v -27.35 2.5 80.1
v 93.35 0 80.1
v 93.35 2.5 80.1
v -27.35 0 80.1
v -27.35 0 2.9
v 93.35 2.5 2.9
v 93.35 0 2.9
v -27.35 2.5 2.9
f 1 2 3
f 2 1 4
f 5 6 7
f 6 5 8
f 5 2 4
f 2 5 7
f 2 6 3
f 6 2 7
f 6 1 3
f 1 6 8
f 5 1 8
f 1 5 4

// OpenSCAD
// file: D:/Projects/assembly-workshop/outputs/Screen_Pi_Hue_SCR5-H8_2026-10-31/checks/geometry.scad
// SCR5-G; mm; FRONT view: X right, Z up, Y into rack. Glass/plate front Y=0.
// Measured values: work/screen-5in/Dimensions.md. Physical fit/strength UNKNOWN.
part="plate";
DROP=0.45; // coupon winner can be substituted here; all three pins use this DROP
LIP=0.8; LIP_ON=true;
LIP_EDGES=[true,true,false,false]; // left,right,bottom,top; Brian: side lips only, cosmetic
FRAME_STEP=1.5; // measured glass-edge inset to metal LCD frame, left/right only
SHIM=0; // moves rear frame seat and plate-boss mating face back
$fn=48;
GCX=33; GCZ=41.5; PW=252; PH=88.8; PT=4;
GW=120.7; GH=77.2; CLEAR=0.2; WW=GW+2*CLEAR; WH=GH+2*CLEAR;
SEAT=13.3+SHIM; FT=3;
SO=[56.45,34]; BTN_X=[45.5,35.5,25.5];
PCB_TOP=38; GAP=0.10; LEAF_T=0.8;
HOLE=[3.4,40.3,44.7];
BX=[GCX-68,GCX+68]; BZ=[10,72];
// DSI connector X extent is unmeasured: conservative assumed 8 mm inward from PCB edge.
DSI=[GCX-60.5,9.1,GCZ-38+30,8,5.25,21];
module xz(y,d){translate([0,y+d,0])rotate([90,0,0])linear_extrude(d)children();}
// rr/rack_slots copied from SCR5-F; same exact slot centres, outline shifted -0.05 Z to centre 44.4.
module rr(w,h,r){hull()for(x=[-w/2+r,w/2-r],z=[-h/2+r,h/2-r])translate([x,z])circle(r=r);}
module rack_slots(){for(x=[-118.2625,118.2625],z=[6.323,38.127,50.773,82.577])translate([x,z])hull()for(dx=[-1.5,1.5])translate([dx,0])circle(d=7);}
module cyl_y(x,y,z,d,h){translate([x,y,z])rotate([-90,0,0])cylinder(d=d,h=h);}
module window_cut(){
  xz(-0.02,4.04)translate([GCX,GCZ])square([WW,WH],center=true);
  // 0.3 x 45-degree chamfer, square corners, front only.
  translate([GCX,0.3,GCZ])rotate([90,0,0])
    linear_extrude(height=0.3,scale=[(WW+0.6)/WW,(WH+0.6)/WH])square([WW,WH],center=true);
}
module lips(){
  // Cosmetic side ledges only; rear frame/standoffs set depth and retain the screen.
  if(LIP_ON)for(i=[0:3])if(LIP_EDGES[i]){
    if(i<2)translate([GCX+(i==0?-WW/2:WW/2-LIP),2.5,GCZ-GH/2+4])cube([LIP,0.8,GH-8]);
    else translate([GCX-GW/2+4,2.5,GCZ+(i==2?-WH/2:WH/2-LIP)])cube([GW-8,0.8,LIP]);
  }
}
// Leaf/nub/bump geometry copied from SCR5-WP-A, translated to this glass centre.
module leaves(){for(x=BTN_X)translate([GCX+x-1.5,0,GCZ]){
  translate([0,0,PCB_TOP+GAP+0.9+0.1])cube([3,11.8,LEAF_T]);
  translate([0,10.2,PCB_TOP+GAP])cube([3,1.4,1.0+LEAF_T/2]);
  translate([0,10.4,PCB_TOP+GAP+1.0+LEAF_T])cube([3,1.0,0.9]);
}}
module plate(){difference(){union(){
  difference(){xz(0,PT)translate([0,PH/2])rr(PW,PH,2.5);window_cut();}
  for(x=BX,z=BZ)cyl_y(x,3.9,z,8,SEAT-3.9);
  leaves(); lips();
 }
 xz(-0.02,4.04)rack_slots();
 for(x=BTN_X)translate([GCX+x-HOLE[0]/2,-0.02,GCZ+HOLE[1]])cube([HOLE[0],SEAT+FT+0.04,HOLE[2]-HOLE[1]]);
 // Printed-in screw pilots (no heat-set OD assumption): nominal M2.5, fit UNKNOWN.
 for(x=BX,z=BZ)cyl_y(x,SEAT-6,z,2.1,6.02);
 // Rear engraving, 0.5 deep, left field.
 xz(3.5,0.52)translate([-75,40])mirror([1,0])text("SCR5-G",size=6,halign="center",font="Liberation Sans:style=Bold");
}}
module frame_blank(){
  // C-shaped perimeter; no material across the board centre / touch FPC.
  xz(SEAT,FT)translate([GCX,GCZ])difference(){square([132,76],center=true);square([116,60],center=true);}
  for(sx=[-1,1],sz=[-1,1])cyl_y(GCX+sx*SO[0],SEAT,GCZ+sz*SO[1],9,FT);
  for(x=BX,z=BZ)hull(){cyl_y(x,SEAT,z,8,FT);cyl_y(GCX+(x<GCX?-62:62),SEAT,z,8,FT);}
}
module dsi_keepout(){translate([DSI[0]-3,DSI[1]-3,DSI[2]-3])cube([DSI[3]+6,DSI[4]+6,DSI[5]+6]);}
module ribbon_route(){
  // Open left/up corridor 18 mm wide; extends past top of plate.
  translate([GCX-84,6.1,GCZ-11])cube([18,24,65]);
  translate([GCX-84,6.1,GCZ-11])cube([32,24,27]);
}
module frame(){difference(){frame_blank();dsi_keepout();ribbon_route();
 for(sx=[-1,1],sz=[-1,1])cyl_y(GCX+sx*SO[0],SEAT-0.02,GCZ+sz*SO[1],2.8,FT+0.04);
 for(x=BX,z=BZ)cyl_y(x,SEAT-0.02,z,2.8,FT+0.04);
}}
// Pin polygon/cap/notch/dot design copied unchanged from SCR5-WP-A.
module pin(d,dots){s=2*d+0.5;difference(){union(){
 translate([-1.5,0,0])rotate([90,0,90])linear_extrude(3)polygon([
 [-s-0.02,40.5],[10.2,40.5],[10.2,41.0],[11.5,41.0],[11.5+2*d,41.0-d],[15,41.0-d],[15,44.5],[-s-0.02,44.5]]);
 translate([-2.5,-s-1.5,39.6])cube([5,1.5,5.8]);
 }for(i=[0:dots-1])translate([(i-(dots-1)/2)*1.4,-s-1.5-0.01,43.5])rotate([-90,0,0])cylinder(d=0.9,h=0.4);}}
module placed_pin(i){translate([GCX+BTN_X[i],0,GCZ])pin(DROP,i+1);}
// Measured layers: cover glass 0.9 + second glass 1.6, metal frame 3.0,
// open gap 2.0, PCB 1.6. Metal frame inset ~1.5 at LEFT/RIGHT only.
// PCB centred under glass and full metal-frame top/bottom extent remain UNKNOWN.
module glass(){translate([GCX-GW/2,0,GCZ-GH/2])cube([GW,2.5,GH]);}
module lcd(){
  translate([GCX-GW/2+FRAME_STEP,2.5,GCZ-GH/2])cube([GW-2*FRAME_STEP,3.0,GH]);
}
module pcb(){translate([GCX-60.5,7.5,GCZ-38])cube([121,1.6,76]);}
module standoffs(){for(sx=[-1,1],sz=[-1,1])difference(){cyl_y(GCX+sx*SO[0],9.1,GCZ+sz*SO[1],5.5,4.2);cyl_y(GCX+sx*SO[0],9.08,GCZ+sz*SO[1],2.5,4.24);}}
module buttons(){for(x=BTN_X){
 translate([GCX+x-3.5,9.1,GCZ+38-3.4])cube([7,3.6,2.4]);
 translate([GCX+x-1.5,9.1,GCZ+37])cube([3,3.6,1]);
}}
module dsi(){translate([DSI[0],DSI[1],DSI[2]])cube([DSI[3],DSI[4],DSI[5]]);}
module touch(){translate([GCX-10,9.1,GCZ-5])cube([20,2,10]);} // lateral extent unmeasured
module dummy(){glass();lcd();pcb();standoffs();buttons();dsi();touch();}
module assembly(){color("gray")plate();color("orange")frame();for(i=[0:2])color("cyan")placed_pin(i);color([0.2,0.3,0.4,0.4])dummy();}
// main file
include <D:/Projects/assembly-workshop/outputs/Screen_Pi_Hue_SCR5-H8_2026-10-31/checks/geometry.scad>
glass();
